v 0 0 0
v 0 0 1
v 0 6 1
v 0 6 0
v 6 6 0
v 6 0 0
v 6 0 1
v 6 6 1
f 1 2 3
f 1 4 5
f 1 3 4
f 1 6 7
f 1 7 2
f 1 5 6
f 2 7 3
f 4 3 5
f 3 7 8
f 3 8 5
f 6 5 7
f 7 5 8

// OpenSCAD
/* Warning, this is a very basic generator with a lot of approximation 
input data : [VQFN, 5NX, 6x6x1.0mm, 28, , E, C04-00401E]
generated by com.zoubworld.electronics.cad.model3d.Basic
Date : Sun Feb 15 10:50:48 CET 2026
*/

//body
color("black")
translate([0,0,0])
cube([6.0,6.0,1.0], center=false);
